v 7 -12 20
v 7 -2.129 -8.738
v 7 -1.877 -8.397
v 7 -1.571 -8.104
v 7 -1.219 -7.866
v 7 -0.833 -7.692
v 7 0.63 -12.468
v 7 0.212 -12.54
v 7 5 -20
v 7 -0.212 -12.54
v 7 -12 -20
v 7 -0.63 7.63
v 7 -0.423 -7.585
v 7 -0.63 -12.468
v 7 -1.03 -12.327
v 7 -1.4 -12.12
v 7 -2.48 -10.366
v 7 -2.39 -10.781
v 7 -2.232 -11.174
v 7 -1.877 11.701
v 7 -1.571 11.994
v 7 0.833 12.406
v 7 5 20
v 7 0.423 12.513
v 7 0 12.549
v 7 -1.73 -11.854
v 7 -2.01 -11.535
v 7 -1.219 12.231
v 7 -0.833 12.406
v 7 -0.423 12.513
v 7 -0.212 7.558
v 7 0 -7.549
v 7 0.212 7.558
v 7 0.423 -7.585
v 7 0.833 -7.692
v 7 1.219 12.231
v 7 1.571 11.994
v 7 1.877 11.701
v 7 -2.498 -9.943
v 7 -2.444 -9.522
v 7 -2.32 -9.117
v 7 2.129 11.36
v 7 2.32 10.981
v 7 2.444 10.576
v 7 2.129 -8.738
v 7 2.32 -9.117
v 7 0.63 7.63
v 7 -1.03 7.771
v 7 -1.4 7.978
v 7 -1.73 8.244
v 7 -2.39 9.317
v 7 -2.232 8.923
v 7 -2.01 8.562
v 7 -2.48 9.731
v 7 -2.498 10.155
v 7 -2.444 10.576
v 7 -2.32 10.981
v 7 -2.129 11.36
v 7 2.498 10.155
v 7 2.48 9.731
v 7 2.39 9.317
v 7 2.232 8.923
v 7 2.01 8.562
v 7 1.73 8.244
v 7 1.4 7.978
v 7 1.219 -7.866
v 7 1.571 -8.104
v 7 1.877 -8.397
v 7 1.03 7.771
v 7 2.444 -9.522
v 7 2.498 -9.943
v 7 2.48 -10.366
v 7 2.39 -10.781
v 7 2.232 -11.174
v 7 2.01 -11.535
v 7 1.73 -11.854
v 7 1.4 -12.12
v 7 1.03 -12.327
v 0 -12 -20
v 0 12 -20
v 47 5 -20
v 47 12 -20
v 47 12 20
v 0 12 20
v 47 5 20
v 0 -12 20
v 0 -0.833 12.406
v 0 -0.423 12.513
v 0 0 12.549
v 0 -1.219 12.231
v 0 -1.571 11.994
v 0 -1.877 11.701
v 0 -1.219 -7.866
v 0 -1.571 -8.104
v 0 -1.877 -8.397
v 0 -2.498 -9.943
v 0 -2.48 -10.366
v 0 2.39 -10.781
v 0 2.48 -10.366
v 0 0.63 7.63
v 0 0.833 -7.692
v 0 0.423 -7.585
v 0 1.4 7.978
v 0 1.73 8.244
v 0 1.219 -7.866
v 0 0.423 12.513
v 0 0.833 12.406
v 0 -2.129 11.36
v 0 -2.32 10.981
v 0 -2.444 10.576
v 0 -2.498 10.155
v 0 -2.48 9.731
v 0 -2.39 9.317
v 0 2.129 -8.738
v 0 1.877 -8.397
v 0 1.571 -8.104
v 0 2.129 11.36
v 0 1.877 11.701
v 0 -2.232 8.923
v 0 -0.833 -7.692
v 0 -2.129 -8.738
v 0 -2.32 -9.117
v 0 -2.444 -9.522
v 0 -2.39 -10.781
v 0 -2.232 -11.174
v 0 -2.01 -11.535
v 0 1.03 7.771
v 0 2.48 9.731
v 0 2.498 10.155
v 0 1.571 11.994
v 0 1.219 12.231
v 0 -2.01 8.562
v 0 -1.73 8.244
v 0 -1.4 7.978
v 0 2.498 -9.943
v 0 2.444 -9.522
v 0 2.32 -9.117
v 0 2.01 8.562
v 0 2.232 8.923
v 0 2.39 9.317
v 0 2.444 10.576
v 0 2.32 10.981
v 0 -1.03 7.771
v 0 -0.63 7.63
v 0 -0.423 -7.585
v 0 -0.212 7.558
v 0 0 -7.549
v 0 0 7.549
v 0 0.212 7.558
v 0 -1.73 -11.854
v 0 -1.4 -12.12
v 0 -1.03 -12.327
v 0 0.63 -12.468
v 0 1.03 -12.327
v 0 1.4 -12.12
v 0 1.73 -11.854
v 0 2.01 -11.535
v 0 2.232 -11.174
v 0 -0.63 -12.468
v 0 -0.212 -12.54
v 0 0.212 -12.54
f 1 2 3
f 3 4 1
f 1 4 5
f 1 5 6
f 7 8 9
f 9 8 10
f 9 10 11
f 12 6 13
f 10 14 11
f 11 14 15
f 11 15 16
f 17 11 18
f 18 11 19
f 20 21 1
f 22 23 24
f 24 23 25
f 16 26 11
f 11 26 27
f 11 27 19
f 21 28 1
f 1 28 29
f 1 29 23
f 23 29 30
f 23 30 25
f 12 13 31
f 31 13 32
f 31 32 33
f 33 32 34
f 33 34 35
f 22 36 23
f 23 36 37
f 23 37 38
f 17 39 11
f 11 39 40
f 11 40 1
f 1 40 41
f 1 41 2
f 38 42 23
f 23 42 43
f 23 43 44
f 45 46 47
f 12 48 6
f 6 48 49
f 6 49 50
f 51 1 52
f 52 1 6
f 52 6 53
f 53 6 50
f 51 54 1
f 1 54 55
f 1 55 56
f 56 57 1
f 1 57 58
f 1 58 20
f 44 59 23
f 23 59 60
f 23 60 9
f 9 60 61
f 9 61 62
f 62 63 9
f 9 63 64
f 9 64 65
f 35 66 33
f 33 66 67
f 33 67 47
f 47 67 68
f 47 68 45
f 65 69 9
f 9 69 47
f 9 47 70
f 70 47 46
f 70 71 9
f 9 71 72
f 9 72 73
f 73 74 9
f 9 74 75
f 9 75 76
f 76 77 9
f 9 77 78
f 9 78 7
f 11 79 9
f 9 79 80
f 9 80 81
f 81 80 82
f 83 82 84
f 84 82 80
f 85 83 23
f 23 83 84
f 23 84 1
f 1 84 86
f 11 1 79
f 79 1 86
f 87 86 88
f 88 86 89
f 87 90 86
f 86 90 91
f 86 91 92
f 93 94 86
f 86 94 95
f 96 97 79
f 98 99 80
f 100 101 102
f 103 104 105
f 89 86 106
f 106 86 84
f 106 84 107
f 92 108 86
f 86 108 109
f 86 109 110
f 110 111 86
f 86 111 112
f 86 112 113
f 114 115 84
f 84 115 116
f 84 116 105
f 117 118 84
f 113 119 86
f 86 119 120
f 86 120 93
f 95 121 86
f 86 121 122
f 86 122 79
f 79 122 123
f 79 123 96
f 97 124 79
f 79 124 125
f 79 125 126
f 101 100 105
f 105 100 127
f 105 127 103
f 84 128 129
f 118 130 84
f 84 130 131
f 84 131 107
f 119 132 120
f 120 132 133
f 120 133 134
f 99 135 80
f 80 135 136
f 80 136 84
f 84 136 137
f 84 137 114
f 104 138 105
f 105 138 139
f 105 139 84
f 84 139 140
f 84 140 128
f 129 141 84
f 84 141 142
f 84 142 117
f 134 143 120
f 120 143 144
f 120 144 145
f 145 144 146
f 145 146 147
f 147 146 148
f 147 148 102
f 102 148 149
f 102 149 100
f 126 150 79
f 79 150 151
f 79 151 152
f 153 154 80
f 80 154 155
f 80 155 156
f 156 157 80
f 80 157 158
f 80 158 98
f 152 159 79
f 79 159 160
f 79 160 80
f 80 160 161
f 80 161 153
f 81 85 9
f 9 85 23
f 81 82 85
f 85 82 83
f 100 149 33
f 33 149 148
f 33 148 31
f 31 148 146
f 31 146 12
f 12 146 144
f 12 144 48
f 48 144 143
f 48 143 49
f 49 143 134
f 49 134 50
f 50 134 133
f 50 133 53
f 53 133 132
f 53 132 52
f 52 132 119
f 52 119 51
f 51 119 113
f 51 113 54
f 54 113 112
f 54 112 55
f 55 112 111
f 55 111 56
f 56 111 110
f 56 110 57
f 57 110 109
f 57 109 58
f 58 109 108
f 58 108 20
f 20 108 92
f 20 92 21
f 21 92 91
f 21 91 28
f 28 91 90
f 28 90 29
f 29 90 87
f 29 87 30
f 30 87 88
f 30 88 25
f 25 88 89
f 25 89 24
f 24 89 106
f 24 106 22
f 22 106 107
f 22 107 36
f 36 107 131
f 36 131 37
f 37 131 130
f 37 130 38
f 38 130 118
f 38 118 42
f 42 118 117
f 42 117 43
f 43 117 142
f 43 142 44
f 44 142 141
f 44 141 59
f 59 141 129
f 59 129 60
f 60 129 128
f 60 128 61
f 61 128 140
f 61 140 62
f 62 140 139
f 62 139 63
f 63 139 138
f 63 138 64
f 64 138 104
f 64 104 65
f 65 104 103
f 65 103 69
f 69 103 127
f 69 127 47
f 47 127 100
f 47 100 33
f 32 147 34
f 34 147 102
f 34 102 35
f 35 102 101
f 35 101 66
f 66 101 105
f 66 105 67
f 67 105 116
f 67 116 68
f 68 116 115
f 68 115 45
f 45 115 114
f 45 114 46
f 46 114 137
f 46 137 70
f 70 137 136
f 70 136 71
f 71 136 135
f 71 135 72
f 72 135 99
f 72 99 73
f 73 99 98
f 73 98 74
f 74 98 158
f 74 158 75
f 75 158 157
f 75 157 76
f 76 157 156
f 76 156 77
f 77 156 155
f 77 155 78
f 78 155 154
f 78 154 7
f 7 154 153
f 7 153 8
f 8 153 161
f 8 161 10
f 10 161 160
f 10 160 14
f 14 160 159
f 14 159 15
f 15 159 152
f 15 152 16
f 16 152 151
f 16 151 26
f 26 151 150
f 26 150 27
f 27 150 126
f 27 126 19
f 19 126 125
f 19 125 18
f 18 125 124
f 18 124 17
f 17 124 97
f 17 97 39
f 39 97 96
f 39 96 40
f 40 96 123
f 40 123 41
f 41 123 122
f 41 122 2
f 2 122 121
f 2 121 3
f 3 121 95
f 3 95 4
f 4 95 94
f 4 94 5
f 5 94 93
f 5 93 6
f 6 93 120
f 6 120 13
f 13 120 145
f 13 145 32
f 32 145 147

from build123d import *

# Parameters (mm, degrees)
SKETCH1_W           = 40
SKETCH1_H           = 24
BOSS_EXTRUDE1_DEPTH = 7
SKETCH2_W           = 40
SKETCH2_H           = 7
BOSS_EXTRUDE2_DEPTH = 40
SKETCH3_R           = 2.5
CUT_EXTRUDE1_DEPTH  = 14


with BuildPart() as part:
    # Sketch1 → Boss-Extrude1 (new body)
    with BuildSketch(Plane(origin=(0, 0, 0), x_dir=(0, 0, -1), z_dir=(1, 0, 0))):
        Rectangle(SKETCH1_W, SKETCH1_H)
    extrude(amount=BOSS_EXTRUDE1_DEPTH)

    # Sketch2 → Boss-Extrude2 (add)
    with BuildSketch(Plane(origin=(7, 0, 0), x_dir=(0, 0, -1), z_dir=(1, 0, 0))):
        with Locations((0, 8.5)):
            Rectangle(SKETCH2_W, SKETCH2_H)
    extrude(amount=BOSS_EXTRUDE2_DEPTH)

    # Sketch3 → Cut-Extrude1 (cut)
    with BuildSketch(Plane.ZY):
        with Locations((-10.048887394, 0)):
            Circle(SKETCH3_R)
        with Locations((10.048887394, 0)):
            Circle(SKETCH3_R)
    extrude(amount=-CUT_EXTRUDE1_DEPTH, mode=Mode.SUBTRACT)


solid = part.part
